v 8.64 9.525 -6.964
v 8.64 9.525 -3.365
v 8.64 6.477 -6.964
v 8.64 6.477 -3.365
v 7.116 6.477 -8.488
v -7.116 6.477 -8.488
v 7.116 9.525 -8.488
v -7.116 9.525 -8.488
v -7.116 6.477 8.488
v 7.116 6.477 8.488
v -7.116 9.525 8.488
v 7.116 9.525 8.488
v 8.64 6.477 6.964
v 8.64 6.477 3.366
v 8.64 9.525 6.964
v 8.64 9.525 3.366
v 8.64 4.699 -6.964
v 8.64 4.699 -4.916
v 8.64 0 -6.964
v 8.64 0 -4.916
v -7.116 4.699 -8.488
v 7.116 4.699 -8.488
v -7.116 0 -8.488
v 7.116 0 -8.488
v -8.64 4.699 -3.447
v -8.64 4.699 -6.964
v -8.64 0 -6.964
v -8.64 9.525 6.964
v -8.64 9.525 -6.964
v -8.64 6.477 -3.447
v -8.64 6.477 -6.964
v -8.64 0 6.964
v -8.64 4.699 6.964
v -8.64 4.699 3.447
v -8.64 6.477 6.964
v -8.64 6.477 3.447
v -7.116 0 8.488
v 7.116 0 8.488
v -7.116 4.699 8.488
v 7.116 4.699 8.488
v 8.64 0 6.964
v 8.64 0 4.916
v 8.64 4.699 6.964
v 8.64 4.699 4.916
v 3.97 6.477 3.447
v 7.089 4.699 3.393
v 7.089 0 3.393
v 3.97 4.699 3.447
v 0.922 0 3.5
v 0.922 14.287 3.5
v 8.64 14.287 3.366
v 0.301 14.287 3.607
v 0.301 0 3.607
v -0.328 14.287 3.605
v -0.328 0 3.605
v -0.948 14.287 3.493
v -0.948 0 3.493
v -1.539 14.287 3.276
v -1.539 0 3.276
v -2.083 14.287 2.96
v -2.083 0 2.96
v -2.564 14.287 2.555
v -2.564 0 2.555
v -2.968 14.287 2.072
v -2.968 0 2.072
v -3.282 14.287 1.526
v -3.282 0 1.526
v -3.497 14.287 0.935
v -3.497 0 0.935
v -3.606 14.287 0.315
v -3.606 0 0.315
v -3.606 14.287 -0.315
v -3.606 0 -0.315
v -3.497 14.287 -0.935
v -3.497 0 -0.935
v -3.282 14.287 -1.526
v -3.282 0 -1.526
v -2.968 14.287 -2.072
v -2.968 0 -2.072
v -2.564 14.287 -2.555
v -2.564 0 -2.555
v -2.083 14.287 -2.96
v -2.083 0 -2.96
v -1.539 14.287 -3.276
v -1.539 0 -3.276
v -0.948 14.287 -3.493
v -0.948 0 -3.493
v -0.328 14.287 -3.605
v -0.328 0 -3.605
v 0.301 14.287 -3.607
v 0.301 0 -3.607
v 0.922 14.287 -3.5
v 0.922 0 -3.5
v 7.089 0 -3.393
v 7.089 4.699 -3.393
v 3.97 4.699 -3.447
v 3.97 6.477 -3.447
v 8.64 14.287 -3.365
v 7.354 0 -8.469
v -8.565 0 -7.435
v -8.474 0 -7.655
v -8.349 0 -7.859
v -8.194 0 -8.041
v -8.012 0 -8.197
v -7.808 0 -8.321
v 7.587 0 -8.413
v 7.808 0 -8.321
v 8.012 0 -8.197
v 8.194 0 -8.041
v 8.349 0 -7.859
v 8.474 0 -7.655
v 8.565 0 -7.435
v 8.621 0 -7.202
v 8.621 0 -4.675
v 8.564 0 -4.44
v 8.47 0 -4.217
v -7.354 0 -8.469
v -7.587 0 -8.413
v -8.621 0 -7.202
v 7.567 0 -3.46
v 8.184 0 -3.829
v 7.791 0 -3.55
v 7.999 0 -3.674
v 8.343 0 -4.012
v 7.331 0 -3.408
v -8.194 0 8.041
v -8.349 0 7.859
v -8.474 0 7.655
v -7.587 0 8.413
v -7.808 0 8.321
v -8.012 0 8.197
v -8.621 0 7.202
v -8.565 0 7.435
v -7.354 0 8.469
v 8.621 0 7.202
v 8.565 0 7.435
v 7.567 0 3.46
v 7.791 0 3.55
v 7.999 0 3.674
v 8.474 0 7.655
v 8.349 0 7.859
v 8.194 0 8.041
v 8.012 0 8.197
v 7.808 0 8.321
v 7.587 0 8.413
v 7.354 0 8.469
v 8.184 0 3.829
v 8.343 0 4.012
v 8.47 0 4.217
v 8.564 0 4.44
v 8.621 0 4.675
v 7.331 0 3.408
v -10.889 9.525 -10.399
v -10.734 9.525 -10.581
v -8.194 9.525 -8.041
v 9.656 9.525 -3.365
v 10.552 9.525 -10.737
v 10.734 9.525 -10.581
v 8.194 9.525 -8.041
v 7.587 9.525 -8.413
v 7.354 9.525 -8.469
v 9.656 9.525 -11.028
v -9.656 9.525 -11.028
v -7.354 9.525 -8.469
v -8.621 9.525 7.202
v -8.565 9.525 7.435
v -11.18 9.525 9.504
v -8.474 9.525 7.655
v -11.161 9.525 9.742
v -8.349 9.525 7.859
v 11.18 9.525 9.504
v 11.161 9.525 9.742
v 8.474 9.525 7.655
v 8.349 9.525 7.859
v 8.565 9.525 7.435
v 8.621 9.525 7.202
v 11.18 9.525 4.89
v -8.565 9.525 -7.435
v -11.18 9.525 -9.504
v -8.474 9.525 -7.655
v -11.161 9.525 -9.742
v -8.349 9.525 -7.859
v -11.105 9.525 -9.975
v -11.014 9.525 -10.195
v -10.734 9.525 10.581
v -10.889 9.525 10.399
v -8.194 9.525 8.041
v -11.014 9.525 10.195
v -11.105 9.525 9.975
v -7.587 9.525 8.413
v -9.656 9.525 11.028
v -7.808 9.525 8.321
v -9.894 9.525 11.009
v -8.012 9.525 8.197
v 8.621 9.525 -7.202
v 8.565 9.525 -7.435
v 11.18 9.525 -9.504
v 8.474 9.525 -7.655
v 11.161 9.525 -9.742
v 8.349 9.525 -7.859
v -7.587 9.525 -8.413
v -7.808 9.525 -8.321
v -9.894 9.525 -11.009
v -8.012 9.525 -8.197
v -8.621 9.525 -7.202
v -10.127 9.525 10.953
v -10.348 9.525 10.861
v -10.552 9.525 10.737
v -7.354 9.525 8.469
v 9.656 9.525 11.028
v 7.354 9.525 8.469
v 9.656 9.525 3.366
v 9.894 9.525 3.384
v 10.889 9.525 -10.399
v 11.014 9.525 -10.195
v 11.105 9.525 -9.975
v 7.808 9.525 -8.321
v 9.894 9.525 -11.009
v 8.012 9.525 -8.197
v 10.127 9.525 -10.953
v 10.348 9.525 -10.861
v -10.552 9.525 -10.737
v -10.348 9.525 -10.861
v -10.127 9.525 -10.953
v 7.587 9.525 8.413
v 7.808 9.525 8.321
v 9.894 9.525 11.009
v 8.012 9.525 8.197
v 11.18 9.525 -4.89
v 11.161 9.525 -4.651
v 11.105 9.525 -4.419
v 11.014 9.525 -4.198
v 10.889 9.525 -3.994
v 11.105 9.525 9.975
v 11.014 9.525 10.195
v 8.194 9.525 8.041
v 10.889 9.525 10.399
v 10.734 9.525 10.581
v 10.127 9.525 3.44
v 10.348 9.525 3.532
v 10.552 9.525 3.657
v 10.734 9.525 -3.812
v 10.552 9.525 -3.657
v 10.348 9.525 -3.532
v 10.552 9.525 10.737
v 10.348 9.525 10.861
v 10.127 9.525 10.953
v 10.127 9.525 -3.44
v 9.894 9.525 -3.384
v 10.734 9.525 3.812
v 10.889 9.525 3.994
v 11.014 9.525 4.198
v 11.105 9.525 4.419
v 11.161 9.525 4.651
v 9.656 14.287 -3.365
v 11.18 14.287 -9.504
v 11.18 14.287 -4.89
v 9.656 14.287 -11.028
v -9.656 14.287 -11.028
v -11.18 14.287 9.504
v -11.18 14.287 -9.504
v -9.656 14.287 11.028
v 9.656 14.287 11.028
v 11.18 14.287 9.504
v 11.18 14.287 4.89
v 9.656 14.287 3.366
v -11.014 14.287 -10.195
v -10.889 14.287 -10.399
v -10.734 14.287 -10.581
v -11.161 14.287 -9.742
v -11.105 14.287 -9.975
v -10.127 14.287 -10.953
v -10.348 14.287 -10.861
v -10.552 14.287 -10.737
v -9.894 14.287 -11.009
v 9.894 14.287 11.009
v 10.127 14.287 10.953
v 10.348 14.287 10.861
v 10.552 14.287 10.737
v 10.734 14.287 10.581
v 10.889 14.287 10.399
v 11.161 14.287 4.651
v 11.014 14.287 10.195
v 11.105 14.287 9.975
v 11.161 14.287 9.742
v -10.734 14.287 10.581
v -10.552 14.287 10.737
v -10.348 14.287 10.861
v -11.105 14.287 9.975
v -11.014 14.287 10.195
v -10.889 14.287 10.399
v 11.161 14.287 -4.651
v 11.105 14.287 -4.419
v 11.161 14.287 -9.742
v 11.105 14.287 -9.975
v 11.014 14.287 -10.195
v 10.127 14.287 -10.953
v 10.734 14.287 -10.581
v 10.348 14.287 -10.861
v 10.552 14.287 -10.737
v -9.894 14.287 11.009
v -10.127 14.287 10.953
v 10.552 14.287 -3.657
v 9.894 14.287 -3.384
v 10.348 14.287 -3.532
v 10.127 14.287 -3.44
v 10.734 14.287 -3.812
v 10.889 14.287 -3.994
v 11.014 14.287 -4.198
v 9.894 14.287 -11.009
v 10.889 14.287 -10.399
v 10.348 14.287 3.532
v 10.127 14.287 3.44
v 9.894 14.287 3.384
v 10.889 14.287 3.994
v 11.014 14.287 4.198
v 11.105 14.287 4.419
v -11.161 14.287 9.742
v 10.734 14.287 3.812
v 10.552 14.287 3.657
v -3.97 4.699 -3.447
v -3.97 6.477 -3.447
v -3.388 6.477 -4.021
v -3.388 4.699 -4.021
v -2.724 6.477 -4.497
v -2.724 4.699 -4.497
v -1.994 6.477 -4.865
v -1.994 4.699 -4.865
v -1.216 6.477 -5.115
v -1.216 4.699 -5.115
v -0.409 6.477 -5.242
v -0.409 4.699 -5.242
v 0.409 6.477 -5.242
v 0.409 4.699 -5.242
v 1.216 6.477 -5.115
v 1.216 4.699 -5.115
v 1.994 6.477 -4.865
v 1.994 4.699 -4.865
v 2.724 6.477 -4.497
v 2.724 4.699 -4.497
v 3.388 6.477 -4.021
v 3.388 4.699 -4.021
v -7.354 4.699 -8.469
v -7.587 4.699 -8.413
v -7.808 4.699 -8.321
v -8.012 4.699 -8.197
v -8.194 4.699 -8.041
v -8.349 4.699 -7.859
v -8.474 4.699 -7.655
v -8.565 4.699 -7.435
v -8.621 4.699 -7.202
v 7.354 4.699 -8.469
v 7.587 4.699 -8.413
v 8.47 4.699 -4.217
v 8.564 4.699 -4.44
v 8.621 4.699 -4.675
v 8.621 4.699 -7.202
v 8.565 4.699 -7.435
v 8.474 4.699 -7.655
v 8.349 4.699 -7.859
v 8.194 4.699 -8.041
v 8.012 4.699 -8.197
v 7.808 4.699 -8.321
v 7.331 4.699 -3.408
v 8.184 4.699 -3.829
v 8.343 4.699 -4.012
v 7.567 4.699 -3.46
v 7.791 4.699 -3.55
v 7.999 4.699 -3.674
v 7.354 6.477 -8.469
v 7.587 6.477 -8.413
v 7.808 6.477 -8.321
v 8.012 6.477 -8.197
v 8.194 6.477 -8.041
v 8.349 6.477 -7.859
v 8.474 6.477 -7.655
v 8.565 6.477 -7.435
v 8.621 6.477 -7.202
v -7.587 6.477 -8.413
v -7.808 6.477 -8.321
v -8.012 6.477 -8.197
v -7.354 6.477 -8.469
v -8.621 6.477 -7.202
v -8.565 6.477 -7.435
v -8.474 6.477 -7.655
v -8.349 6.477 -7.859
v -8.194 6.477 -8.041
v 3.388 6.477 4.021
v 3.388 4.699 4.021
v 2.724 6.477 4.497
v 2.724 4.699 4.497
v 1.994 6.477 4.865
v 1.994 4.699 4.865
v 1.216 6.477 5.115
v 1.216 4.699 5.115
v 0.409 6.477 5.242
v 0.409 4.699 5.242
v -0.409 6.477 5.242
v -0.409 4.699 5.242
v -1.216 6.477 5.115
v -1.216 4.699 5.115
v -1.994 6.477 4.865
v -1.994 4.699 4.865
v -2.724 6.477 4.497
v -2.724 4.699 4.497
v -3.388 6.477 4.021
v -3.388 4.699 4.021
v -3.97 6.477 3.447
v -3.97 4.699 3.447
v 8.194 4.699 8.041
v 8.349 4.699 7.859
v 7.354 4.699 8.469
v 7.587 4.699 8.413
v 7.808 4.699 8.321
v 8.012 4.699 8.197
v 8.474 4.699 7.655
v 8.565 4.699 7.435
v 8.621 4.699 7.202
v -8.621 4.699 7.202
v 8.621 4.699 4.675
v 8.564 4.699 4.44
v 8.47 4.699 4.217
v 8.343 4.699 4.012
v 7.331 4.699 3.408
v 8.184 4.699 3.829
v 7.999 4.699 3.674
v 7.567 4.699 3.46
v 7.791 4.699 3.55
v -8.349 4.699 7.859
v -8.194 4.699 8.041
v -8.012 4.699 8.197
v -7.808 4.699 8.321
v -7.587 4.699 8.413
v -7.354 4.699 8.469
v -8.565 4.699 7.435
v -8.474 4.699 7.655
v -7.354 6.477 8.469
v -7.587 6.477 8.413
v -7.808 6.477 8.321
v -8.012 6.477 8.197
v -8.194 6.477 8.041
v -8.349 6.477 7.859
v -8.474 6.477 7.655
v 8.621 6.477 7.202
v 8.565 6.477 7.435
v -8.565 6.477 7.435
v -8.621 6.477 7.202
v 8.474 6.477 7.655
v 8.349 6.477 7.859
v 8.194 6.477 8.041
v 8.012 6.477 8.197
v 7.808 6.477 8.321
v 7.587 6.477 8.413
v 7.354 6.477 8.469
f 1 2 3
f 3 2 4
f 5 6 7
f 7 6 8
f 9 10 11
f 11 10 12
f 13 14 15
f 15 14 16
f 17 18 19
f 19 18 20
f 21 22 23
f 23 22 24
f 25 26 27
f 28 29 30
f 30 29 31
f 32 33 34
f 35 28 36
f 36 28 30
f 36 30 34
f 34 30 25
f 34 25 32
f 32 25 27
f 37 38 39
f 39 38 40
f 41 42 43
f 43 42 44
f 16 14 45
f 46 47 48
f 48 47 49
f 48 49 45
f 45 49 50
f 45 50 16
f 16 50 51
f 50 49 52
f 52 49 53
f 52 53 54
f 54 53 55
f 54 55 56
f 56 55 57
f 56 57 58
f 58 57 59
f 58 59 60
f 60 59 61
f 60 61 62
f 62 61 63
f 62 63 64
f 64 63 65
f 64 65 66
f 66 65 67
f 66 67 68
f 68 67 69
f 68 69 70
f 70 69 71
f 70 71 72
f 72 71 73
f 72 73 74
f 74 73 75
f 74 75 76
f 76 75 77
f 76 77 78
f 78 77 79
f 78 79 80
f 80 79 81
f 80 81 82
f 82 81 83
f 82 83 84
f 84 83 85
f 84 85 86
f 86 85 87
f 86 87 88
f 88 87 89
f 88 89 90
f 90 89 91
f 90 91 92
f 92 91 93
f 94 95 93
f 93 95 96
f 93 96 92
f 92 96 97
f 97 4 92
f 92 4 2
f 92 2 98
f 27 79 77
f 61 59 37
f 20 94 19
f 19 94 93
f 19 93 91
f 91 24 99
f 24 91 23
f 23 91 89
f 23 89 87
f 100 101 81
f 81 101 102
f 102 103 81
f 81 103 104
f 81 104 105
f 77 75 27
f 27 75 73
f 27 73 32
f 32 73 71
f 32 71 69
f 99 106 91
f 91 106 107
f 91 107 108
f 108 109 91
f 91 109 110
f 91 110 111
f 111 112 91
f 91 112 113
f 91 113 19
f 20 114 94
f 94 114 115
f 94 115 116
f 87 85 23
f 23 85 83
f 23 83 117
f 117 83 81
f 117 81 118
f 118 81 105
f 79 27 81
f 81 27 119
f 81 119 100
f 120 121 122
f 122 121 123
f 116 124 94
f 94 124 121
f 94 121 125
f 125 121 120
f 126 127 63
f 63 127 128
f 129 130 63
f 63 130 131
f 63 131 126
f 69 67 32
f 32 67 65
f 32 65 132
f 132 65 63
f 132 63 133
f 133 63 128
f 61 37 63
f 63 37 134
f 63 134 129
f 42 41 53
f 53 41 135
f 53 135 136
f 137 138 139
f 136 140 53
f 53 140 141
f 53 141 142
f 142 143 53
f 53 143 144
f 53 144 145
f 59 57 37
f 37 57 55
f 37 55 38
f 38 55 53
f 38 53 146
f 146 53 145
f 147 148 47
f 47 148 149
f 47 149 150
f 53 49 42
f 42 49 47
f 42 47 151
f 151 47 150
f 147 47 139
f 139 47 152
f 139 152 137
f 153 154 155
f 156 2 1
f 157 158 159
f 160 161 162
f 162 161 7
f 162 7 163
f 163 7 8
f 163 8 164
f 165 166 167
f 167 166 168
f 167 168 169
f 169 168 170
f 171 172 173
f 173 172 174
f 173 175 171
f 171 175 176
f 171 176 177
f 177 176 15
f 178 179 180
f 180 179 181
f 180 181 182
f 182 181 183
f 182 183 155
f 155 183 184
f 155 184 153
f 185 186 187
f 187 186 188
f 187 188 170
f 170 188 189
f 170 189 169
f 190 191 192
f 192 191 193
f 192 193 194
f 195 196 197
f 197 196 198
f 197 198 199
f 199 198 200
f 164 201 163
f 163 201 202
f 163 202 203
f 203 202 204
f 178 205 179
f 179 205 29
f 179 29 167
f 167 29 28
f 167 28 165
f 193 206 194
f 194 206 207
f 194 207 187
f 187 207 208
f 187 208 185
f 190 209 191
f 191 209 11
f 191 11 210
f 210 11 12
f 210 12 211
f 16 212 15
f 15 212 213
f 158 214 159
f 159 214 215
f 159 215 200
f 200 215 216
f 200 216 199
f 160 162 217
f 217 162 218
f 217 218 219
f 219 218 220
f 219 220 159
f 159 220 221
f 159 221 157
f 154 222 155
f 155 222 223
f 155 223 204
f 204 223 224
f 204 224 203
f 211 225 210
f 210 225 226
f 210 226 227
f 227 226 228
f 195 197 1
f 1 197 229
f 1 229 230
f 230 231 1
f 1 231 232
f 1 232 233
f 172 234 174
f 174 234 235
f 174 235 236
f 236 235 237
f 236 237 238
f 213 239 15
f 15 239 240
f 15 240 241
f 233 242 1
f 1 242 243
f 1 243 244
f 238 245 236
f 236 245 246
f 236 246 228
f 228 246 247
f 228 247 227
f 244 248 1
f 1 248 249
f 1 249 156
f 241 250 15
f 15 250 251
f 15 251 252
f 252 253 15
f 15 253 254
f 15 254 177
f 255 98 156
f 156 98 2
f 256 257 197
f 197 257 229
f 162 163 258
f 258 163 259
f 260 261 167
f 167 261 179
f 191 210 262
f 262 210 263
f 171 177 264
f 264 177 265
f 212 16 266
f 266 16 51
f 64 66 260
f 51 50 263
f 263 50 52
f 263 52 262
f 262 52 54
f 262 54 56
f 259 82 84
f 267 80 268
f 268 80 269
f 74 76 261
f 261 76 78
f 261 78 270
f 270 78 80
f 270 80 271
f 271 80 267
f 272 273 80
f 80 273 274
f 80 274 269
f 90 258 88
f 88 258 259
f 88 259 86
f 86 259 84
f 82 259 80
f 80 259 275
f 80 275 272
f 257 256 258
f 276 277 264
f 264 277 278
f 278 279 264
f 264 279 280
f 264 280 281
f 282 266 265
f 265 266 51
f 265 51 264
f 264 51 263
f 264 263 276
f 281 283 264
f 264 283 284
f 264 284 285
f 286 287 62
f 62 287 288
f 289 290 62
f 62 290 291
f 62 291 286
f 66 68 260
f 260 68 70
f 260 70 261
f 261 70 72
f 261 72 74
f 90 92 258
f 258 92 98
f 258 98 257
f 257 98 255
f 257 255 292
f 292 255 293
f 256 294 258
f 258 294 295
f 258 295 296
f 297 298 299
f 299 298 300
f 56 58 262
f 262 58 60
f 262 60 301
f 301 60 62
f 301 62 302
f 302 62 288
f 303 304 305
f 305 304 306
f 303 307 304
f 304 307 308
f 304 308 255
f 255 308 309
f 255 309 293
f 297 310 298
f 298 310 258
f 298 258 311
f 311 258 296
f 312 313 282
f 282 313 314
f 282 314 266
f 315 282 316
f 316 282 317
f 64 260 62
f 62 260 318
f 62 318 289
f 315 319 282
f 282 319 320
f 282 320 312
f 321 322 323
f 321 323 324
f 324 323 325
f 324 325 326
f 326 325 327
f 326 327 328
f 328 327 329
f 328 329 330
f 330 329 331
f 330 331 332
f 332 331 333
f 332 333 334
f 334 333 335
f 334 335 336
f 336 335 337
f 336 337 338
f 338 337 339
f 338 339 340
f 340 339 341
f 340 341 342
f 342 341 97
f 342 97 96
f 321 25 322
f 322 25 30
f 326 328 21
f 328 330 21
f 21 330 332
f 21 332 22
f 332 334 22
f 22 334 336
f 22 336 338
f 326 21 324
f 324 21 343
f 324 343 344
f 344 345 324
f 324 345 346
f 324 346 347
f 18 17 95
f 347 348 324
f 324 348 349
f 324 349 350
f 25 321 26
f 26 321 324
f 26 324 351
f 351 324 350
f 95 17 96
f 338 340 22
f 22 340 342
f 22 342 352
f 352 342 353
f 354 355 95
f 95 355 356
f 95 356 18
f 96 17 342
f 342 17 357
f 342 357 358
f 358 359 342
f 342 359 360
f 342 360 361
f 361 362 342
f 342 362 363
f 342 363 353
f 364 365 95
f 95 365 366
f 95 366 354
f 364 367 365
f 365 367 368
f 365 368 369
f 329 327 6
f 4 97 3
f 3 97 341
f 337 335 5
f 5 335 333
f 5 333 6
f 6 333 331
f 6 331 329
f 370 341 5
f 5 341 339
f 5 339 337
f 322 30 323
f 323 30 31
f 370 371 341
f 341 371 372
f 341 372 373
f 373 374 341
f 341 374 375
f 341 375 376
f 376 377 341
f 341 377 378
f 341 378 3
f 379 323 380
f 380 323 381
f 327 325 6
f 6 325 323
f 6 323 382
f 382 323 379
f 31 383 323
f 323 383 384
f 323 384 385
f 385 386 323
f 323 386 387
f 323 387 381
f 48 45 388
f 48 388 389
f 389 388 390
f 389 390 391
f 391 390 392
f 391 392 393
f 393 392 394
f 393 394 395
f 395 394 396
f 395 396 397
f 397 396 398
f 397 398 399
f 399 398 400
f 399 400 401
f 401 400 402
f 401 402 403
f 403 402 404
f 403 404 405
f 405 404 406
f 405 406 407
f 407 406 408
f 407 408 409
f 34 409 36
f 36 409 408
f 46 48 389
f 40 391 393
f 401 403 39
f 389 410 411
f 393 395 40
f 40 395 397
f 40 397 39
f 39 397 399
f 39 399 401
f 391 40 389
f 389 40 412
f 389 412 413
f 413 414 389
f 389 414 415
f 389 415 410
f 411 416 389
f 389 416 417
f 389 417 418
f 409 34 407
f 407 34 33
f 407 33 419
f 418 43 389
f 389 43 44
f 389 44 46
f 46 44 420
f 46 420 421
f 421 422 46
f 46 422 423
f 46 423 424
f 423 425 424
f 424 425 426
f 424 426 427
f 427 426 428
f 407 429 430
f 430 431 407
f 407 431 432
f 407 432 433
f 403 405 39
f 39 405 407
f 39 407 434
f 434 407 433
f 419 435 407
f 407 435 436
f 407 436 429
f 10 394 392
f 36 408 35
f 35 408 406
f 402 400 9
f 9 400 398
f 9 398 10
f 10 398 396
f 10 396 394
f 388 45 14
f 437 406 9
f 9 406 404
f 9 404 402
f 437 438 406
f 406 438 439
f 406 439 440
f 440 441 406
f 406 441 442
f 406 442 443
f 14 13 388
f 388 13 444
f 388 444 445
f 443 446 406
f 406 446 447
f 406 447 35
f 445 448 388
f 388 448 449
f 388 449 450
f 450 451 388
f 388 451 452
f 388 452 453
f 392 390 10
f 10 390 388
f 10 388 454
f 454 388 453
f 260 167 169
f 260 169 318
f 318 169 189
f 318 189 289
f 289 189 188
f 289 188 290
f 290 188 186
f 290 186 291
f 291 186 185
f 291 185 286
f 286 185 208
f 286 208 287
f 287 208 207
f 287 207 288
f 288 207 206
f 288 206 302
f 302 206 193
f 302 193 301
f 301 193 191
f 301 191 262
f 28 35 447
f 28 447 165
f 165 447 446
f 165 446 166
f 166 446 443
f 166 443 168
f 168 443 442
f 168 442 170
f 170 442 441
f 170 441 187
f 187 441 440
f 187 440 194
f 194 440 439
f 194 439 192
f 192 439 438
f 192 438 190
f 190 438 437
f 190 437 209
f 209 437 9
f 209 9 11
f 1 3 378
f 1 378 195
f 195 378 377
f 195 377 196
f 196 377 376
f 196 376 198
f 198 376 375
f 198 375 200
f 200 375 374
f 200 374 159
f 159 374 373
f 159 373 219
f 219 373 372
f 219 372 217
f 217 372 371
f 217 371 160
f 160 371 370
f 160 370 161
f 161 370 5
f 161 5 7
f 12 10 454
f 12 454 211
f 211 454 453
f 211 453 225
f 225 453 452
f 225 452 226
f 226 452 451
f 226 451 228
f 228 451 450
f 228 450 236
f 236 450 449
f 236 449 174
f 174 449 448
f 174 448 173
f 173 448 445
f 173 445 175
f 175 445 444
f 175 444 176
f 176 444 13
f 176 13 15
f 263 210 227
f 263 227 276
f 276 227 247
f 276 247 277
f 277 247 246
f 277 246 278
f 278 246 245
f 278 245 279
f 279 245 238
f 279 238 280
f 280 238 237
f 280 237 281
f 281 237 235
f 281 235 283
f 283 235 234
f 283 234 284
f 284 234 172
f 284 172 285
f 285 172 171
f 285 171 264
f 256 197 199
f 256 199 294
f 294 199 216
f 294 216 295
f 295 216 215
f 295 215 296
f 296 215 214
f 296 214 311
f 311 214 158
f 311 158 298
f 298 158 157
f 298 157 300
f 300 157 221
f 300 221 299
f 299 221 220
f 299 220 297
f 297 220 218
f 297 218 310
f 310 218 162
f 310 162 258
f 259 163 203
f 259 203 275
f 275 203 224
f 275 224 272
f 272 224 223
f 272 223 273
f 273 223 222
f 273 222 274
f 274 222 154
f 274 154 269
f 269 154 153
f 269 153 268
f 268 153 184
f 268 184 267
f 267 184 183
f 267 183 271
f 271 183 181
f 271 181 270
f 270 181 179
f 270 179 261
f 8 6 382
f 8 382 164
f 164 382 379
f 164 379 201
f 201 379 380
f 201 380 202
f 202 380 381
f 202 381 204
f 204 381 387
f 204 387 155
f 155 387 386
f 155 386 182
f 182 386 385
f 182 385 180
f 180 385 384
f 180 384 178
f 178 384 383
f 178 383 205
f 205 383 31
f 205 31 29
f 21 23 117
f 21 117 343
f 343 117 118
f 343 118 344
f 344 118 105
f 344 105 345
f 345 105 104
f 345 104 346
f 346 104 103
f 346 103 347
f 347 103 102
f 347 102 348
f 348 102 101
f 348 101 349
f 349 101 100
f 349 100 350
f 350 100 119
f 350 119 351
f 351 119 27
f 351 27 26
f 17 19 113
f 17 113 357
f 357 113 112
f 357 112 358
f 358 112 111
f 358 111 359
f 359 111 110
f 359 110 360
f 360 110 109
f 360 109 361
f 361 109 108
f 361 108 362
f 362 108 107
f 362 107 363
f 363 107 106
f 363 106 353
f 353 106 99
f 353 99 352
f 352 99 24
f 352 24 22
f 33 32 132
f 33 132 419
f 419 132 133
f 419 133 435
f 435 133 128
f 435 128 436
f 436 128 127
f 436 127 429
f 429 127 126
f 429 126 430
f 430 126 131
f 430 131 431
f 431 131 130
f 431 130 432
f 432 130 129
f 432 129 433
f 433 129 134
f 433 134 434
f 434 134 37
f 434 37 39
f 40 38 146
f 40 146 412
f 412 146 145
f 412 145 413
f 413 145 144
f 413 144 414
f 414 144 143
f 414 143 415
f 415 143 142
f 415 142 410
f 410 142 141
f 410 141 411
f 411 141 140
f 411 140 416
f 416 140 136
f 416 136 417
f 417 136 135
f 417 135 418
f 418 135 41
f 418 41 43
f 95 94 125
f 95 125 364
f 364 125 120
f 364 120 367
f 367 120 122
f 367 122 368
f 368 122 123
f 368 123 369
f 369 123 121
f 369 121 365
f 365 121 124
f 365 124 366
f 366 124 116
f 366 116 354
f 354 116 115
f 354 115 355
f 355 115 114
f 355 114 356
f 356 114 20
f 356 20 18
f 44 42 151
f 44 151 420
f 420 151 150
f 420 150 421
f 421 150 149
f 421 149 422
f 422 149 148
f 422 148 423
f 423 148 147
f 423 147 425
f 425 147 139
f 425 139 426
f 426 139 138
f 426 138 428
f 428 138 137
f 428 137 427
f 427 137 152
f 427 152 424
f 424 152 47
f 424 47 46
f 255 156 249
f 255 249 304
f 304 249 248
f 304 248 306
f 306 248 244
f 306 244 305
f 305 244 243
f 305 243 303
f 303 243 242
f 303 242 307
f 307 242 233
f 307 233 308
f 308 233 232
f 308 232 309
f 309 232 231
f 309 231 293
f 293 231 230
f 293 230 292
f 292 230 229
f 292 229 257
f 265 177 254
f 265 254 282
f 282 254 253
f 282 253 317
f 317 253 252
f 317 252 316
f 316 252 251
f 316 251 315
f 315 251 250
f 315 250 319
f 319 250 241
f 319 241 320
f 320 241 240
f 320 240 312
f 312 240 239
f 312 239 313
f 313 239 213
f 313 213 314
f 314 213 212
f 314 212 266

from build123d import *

# Parameters (mm, degrees)
BOSS_EXTRUDE1_DEPTH = 9.525
BOSS_EXTRUDE2_DEPTH = 4.7625
CUT_EXTRUDE1_DEPTH  = 1.778
FILLET1_R           = 1.524


with BuildPart() as part:
    # Sketch2 → Boss-Extrude1 (new body)
    with BuildSketch(Plane(origin=(0, 0, 0), x_dir=(1, 0, 0), z_dir=(0, 1, 0))):
        with BuildLine():
            Line((8.64, 8.4876), (-8.64, 8.4876))
            Line((-8.64, 8.4876), (-8.64, -8.4876))
            Line((-8.64, -8.4876), (8.64, -8.4876))
            Line((8.64, -8.4876), (8.64, -3.3655))
            Line((8.64, -3.3655), (0.921517153, -3.500226619))
            ThreePointArc((0.921517153, -3.500226619), (-3.6195, 0), (0.921517153, 3.500226619))
            Line((0.921517153, 3.500226619), (8.64, 3.3655))
            Line((8.64, 3.3655), (8.64, 8.4876))
        make_face()
    extrude(amount=BOSS_EXTRUDE1_DEPTH)

    # Sketch3 → Boss-Extrude2 (add)
    with BuildSketch(Plane(origin=(0, 9.525, 0), x_dir=(1, 0, 0), z_dir=(0, 1, 0))):
        with BuildLine():
            Line((11.18, 3.3655), (11.18, 11.0276))
            Line((11.18, 11.0276), (-11.18, 11.0276))
            Line((-11.18, 11.0276), (-11.18, -11.0276))
            Line((-11.18, -11.0276), (11.18, -11.0276))
            Line((11.18, -11.0276), (11.18, -3.3655))
            Line((11.18, -3.3655), (8.64, -3.3655))
            Line((8.64, -3.3655), (0.921517153, -3.500226619))
            ThreePointArc((0.921517153, -3.500226619), (-3.6195, 0), (0.921517153, 3.500226619))
            Line((0.921517153, 3.500226619), (8.64, 3.3655))
            Line((8.64, 3.3655), (11.18, 3.3655))
        make_face()
    extrude(amount=BOSS_EXTRUDE2_DEPTH)

    # Sketch4 → Cut-Extrude1 (cut)
    with BuildSketch(Plane(origin=(0, 6.477, 0), x_dir=(-1, 0, 0), z_dir=(0, -1, 0))):
        with BuildLine():
            Line((3.970210665, 3.447011476), (8.64, 3.447011476))
            Line((8.64, 3.447011476), (8.64, 8.4876))
            Line((8.64, 8.4876), (-8.64, 8.4876))
            Line((-8.64, 8.4876), (-8.64, 3.3655))
            Line((-8.64, 3.3655), (-3.970210665, 3.447011476))
            ThreePointArc((-3.970210665, 3.447011476), (0, 5.2578), (3.970210665, 3.447011476))
        make_face()
        with BuildLine():
            Line((3.970210665, -3.447011476), (8.64, -3.447011476))
            Line((8.64, -3.447011476), (8.64, -8.4876))
            Line((8.64, -8.4876), (-8.64, -8.4876))
            Line((-8.64, -8.4876), (-8.64, -3.3655))
            Line((-8.64, -3.3655), (-3.970210665, -3.447011476))
            ThreePointArc((-3.970210665, -3.447011476), (0, -5.2578), (3.970210665, -3.447011476))
        make_face()
    extrude(amount=CUT_EXTRUDE1_DEPTH, mode=Mode.SUBTRACT)

    # Fillet1
    fillet1_edges = [part.edges().sort_by_distance(p)[0] for p in [
        (8.64, 8.001, 8.4876),
        (-8.64, 8.001, 8.4876),
        (-8.64, 8.001, -8.4876),
        (8.64, 8.001, -8.4876),
        (11.18, 11.90625, -3.3655),
        (11.18, 11.90625, -11.0276),
        (-11.18, 11.90625, -11.0276),
        (-11.18, 11.90625, 11.0276),
        (11.18, 11.90625, 11.0276),
        (11.18, 11.90625, 3.3655),
        (8.64, 2.3495, -3.3655),
        (8.64, 2.3495, 3.3655),
        (8.64, 2.3495, 8.4876),
        (-8.64, 2.3495, 8.4876),
        (-8.64, 2.3495, -8.4876),
        (8.64, 2.3495, -8.4876),
    ]]
    fillet(fillet1_edges, radius=FILLET1_R)


solid = part.part
